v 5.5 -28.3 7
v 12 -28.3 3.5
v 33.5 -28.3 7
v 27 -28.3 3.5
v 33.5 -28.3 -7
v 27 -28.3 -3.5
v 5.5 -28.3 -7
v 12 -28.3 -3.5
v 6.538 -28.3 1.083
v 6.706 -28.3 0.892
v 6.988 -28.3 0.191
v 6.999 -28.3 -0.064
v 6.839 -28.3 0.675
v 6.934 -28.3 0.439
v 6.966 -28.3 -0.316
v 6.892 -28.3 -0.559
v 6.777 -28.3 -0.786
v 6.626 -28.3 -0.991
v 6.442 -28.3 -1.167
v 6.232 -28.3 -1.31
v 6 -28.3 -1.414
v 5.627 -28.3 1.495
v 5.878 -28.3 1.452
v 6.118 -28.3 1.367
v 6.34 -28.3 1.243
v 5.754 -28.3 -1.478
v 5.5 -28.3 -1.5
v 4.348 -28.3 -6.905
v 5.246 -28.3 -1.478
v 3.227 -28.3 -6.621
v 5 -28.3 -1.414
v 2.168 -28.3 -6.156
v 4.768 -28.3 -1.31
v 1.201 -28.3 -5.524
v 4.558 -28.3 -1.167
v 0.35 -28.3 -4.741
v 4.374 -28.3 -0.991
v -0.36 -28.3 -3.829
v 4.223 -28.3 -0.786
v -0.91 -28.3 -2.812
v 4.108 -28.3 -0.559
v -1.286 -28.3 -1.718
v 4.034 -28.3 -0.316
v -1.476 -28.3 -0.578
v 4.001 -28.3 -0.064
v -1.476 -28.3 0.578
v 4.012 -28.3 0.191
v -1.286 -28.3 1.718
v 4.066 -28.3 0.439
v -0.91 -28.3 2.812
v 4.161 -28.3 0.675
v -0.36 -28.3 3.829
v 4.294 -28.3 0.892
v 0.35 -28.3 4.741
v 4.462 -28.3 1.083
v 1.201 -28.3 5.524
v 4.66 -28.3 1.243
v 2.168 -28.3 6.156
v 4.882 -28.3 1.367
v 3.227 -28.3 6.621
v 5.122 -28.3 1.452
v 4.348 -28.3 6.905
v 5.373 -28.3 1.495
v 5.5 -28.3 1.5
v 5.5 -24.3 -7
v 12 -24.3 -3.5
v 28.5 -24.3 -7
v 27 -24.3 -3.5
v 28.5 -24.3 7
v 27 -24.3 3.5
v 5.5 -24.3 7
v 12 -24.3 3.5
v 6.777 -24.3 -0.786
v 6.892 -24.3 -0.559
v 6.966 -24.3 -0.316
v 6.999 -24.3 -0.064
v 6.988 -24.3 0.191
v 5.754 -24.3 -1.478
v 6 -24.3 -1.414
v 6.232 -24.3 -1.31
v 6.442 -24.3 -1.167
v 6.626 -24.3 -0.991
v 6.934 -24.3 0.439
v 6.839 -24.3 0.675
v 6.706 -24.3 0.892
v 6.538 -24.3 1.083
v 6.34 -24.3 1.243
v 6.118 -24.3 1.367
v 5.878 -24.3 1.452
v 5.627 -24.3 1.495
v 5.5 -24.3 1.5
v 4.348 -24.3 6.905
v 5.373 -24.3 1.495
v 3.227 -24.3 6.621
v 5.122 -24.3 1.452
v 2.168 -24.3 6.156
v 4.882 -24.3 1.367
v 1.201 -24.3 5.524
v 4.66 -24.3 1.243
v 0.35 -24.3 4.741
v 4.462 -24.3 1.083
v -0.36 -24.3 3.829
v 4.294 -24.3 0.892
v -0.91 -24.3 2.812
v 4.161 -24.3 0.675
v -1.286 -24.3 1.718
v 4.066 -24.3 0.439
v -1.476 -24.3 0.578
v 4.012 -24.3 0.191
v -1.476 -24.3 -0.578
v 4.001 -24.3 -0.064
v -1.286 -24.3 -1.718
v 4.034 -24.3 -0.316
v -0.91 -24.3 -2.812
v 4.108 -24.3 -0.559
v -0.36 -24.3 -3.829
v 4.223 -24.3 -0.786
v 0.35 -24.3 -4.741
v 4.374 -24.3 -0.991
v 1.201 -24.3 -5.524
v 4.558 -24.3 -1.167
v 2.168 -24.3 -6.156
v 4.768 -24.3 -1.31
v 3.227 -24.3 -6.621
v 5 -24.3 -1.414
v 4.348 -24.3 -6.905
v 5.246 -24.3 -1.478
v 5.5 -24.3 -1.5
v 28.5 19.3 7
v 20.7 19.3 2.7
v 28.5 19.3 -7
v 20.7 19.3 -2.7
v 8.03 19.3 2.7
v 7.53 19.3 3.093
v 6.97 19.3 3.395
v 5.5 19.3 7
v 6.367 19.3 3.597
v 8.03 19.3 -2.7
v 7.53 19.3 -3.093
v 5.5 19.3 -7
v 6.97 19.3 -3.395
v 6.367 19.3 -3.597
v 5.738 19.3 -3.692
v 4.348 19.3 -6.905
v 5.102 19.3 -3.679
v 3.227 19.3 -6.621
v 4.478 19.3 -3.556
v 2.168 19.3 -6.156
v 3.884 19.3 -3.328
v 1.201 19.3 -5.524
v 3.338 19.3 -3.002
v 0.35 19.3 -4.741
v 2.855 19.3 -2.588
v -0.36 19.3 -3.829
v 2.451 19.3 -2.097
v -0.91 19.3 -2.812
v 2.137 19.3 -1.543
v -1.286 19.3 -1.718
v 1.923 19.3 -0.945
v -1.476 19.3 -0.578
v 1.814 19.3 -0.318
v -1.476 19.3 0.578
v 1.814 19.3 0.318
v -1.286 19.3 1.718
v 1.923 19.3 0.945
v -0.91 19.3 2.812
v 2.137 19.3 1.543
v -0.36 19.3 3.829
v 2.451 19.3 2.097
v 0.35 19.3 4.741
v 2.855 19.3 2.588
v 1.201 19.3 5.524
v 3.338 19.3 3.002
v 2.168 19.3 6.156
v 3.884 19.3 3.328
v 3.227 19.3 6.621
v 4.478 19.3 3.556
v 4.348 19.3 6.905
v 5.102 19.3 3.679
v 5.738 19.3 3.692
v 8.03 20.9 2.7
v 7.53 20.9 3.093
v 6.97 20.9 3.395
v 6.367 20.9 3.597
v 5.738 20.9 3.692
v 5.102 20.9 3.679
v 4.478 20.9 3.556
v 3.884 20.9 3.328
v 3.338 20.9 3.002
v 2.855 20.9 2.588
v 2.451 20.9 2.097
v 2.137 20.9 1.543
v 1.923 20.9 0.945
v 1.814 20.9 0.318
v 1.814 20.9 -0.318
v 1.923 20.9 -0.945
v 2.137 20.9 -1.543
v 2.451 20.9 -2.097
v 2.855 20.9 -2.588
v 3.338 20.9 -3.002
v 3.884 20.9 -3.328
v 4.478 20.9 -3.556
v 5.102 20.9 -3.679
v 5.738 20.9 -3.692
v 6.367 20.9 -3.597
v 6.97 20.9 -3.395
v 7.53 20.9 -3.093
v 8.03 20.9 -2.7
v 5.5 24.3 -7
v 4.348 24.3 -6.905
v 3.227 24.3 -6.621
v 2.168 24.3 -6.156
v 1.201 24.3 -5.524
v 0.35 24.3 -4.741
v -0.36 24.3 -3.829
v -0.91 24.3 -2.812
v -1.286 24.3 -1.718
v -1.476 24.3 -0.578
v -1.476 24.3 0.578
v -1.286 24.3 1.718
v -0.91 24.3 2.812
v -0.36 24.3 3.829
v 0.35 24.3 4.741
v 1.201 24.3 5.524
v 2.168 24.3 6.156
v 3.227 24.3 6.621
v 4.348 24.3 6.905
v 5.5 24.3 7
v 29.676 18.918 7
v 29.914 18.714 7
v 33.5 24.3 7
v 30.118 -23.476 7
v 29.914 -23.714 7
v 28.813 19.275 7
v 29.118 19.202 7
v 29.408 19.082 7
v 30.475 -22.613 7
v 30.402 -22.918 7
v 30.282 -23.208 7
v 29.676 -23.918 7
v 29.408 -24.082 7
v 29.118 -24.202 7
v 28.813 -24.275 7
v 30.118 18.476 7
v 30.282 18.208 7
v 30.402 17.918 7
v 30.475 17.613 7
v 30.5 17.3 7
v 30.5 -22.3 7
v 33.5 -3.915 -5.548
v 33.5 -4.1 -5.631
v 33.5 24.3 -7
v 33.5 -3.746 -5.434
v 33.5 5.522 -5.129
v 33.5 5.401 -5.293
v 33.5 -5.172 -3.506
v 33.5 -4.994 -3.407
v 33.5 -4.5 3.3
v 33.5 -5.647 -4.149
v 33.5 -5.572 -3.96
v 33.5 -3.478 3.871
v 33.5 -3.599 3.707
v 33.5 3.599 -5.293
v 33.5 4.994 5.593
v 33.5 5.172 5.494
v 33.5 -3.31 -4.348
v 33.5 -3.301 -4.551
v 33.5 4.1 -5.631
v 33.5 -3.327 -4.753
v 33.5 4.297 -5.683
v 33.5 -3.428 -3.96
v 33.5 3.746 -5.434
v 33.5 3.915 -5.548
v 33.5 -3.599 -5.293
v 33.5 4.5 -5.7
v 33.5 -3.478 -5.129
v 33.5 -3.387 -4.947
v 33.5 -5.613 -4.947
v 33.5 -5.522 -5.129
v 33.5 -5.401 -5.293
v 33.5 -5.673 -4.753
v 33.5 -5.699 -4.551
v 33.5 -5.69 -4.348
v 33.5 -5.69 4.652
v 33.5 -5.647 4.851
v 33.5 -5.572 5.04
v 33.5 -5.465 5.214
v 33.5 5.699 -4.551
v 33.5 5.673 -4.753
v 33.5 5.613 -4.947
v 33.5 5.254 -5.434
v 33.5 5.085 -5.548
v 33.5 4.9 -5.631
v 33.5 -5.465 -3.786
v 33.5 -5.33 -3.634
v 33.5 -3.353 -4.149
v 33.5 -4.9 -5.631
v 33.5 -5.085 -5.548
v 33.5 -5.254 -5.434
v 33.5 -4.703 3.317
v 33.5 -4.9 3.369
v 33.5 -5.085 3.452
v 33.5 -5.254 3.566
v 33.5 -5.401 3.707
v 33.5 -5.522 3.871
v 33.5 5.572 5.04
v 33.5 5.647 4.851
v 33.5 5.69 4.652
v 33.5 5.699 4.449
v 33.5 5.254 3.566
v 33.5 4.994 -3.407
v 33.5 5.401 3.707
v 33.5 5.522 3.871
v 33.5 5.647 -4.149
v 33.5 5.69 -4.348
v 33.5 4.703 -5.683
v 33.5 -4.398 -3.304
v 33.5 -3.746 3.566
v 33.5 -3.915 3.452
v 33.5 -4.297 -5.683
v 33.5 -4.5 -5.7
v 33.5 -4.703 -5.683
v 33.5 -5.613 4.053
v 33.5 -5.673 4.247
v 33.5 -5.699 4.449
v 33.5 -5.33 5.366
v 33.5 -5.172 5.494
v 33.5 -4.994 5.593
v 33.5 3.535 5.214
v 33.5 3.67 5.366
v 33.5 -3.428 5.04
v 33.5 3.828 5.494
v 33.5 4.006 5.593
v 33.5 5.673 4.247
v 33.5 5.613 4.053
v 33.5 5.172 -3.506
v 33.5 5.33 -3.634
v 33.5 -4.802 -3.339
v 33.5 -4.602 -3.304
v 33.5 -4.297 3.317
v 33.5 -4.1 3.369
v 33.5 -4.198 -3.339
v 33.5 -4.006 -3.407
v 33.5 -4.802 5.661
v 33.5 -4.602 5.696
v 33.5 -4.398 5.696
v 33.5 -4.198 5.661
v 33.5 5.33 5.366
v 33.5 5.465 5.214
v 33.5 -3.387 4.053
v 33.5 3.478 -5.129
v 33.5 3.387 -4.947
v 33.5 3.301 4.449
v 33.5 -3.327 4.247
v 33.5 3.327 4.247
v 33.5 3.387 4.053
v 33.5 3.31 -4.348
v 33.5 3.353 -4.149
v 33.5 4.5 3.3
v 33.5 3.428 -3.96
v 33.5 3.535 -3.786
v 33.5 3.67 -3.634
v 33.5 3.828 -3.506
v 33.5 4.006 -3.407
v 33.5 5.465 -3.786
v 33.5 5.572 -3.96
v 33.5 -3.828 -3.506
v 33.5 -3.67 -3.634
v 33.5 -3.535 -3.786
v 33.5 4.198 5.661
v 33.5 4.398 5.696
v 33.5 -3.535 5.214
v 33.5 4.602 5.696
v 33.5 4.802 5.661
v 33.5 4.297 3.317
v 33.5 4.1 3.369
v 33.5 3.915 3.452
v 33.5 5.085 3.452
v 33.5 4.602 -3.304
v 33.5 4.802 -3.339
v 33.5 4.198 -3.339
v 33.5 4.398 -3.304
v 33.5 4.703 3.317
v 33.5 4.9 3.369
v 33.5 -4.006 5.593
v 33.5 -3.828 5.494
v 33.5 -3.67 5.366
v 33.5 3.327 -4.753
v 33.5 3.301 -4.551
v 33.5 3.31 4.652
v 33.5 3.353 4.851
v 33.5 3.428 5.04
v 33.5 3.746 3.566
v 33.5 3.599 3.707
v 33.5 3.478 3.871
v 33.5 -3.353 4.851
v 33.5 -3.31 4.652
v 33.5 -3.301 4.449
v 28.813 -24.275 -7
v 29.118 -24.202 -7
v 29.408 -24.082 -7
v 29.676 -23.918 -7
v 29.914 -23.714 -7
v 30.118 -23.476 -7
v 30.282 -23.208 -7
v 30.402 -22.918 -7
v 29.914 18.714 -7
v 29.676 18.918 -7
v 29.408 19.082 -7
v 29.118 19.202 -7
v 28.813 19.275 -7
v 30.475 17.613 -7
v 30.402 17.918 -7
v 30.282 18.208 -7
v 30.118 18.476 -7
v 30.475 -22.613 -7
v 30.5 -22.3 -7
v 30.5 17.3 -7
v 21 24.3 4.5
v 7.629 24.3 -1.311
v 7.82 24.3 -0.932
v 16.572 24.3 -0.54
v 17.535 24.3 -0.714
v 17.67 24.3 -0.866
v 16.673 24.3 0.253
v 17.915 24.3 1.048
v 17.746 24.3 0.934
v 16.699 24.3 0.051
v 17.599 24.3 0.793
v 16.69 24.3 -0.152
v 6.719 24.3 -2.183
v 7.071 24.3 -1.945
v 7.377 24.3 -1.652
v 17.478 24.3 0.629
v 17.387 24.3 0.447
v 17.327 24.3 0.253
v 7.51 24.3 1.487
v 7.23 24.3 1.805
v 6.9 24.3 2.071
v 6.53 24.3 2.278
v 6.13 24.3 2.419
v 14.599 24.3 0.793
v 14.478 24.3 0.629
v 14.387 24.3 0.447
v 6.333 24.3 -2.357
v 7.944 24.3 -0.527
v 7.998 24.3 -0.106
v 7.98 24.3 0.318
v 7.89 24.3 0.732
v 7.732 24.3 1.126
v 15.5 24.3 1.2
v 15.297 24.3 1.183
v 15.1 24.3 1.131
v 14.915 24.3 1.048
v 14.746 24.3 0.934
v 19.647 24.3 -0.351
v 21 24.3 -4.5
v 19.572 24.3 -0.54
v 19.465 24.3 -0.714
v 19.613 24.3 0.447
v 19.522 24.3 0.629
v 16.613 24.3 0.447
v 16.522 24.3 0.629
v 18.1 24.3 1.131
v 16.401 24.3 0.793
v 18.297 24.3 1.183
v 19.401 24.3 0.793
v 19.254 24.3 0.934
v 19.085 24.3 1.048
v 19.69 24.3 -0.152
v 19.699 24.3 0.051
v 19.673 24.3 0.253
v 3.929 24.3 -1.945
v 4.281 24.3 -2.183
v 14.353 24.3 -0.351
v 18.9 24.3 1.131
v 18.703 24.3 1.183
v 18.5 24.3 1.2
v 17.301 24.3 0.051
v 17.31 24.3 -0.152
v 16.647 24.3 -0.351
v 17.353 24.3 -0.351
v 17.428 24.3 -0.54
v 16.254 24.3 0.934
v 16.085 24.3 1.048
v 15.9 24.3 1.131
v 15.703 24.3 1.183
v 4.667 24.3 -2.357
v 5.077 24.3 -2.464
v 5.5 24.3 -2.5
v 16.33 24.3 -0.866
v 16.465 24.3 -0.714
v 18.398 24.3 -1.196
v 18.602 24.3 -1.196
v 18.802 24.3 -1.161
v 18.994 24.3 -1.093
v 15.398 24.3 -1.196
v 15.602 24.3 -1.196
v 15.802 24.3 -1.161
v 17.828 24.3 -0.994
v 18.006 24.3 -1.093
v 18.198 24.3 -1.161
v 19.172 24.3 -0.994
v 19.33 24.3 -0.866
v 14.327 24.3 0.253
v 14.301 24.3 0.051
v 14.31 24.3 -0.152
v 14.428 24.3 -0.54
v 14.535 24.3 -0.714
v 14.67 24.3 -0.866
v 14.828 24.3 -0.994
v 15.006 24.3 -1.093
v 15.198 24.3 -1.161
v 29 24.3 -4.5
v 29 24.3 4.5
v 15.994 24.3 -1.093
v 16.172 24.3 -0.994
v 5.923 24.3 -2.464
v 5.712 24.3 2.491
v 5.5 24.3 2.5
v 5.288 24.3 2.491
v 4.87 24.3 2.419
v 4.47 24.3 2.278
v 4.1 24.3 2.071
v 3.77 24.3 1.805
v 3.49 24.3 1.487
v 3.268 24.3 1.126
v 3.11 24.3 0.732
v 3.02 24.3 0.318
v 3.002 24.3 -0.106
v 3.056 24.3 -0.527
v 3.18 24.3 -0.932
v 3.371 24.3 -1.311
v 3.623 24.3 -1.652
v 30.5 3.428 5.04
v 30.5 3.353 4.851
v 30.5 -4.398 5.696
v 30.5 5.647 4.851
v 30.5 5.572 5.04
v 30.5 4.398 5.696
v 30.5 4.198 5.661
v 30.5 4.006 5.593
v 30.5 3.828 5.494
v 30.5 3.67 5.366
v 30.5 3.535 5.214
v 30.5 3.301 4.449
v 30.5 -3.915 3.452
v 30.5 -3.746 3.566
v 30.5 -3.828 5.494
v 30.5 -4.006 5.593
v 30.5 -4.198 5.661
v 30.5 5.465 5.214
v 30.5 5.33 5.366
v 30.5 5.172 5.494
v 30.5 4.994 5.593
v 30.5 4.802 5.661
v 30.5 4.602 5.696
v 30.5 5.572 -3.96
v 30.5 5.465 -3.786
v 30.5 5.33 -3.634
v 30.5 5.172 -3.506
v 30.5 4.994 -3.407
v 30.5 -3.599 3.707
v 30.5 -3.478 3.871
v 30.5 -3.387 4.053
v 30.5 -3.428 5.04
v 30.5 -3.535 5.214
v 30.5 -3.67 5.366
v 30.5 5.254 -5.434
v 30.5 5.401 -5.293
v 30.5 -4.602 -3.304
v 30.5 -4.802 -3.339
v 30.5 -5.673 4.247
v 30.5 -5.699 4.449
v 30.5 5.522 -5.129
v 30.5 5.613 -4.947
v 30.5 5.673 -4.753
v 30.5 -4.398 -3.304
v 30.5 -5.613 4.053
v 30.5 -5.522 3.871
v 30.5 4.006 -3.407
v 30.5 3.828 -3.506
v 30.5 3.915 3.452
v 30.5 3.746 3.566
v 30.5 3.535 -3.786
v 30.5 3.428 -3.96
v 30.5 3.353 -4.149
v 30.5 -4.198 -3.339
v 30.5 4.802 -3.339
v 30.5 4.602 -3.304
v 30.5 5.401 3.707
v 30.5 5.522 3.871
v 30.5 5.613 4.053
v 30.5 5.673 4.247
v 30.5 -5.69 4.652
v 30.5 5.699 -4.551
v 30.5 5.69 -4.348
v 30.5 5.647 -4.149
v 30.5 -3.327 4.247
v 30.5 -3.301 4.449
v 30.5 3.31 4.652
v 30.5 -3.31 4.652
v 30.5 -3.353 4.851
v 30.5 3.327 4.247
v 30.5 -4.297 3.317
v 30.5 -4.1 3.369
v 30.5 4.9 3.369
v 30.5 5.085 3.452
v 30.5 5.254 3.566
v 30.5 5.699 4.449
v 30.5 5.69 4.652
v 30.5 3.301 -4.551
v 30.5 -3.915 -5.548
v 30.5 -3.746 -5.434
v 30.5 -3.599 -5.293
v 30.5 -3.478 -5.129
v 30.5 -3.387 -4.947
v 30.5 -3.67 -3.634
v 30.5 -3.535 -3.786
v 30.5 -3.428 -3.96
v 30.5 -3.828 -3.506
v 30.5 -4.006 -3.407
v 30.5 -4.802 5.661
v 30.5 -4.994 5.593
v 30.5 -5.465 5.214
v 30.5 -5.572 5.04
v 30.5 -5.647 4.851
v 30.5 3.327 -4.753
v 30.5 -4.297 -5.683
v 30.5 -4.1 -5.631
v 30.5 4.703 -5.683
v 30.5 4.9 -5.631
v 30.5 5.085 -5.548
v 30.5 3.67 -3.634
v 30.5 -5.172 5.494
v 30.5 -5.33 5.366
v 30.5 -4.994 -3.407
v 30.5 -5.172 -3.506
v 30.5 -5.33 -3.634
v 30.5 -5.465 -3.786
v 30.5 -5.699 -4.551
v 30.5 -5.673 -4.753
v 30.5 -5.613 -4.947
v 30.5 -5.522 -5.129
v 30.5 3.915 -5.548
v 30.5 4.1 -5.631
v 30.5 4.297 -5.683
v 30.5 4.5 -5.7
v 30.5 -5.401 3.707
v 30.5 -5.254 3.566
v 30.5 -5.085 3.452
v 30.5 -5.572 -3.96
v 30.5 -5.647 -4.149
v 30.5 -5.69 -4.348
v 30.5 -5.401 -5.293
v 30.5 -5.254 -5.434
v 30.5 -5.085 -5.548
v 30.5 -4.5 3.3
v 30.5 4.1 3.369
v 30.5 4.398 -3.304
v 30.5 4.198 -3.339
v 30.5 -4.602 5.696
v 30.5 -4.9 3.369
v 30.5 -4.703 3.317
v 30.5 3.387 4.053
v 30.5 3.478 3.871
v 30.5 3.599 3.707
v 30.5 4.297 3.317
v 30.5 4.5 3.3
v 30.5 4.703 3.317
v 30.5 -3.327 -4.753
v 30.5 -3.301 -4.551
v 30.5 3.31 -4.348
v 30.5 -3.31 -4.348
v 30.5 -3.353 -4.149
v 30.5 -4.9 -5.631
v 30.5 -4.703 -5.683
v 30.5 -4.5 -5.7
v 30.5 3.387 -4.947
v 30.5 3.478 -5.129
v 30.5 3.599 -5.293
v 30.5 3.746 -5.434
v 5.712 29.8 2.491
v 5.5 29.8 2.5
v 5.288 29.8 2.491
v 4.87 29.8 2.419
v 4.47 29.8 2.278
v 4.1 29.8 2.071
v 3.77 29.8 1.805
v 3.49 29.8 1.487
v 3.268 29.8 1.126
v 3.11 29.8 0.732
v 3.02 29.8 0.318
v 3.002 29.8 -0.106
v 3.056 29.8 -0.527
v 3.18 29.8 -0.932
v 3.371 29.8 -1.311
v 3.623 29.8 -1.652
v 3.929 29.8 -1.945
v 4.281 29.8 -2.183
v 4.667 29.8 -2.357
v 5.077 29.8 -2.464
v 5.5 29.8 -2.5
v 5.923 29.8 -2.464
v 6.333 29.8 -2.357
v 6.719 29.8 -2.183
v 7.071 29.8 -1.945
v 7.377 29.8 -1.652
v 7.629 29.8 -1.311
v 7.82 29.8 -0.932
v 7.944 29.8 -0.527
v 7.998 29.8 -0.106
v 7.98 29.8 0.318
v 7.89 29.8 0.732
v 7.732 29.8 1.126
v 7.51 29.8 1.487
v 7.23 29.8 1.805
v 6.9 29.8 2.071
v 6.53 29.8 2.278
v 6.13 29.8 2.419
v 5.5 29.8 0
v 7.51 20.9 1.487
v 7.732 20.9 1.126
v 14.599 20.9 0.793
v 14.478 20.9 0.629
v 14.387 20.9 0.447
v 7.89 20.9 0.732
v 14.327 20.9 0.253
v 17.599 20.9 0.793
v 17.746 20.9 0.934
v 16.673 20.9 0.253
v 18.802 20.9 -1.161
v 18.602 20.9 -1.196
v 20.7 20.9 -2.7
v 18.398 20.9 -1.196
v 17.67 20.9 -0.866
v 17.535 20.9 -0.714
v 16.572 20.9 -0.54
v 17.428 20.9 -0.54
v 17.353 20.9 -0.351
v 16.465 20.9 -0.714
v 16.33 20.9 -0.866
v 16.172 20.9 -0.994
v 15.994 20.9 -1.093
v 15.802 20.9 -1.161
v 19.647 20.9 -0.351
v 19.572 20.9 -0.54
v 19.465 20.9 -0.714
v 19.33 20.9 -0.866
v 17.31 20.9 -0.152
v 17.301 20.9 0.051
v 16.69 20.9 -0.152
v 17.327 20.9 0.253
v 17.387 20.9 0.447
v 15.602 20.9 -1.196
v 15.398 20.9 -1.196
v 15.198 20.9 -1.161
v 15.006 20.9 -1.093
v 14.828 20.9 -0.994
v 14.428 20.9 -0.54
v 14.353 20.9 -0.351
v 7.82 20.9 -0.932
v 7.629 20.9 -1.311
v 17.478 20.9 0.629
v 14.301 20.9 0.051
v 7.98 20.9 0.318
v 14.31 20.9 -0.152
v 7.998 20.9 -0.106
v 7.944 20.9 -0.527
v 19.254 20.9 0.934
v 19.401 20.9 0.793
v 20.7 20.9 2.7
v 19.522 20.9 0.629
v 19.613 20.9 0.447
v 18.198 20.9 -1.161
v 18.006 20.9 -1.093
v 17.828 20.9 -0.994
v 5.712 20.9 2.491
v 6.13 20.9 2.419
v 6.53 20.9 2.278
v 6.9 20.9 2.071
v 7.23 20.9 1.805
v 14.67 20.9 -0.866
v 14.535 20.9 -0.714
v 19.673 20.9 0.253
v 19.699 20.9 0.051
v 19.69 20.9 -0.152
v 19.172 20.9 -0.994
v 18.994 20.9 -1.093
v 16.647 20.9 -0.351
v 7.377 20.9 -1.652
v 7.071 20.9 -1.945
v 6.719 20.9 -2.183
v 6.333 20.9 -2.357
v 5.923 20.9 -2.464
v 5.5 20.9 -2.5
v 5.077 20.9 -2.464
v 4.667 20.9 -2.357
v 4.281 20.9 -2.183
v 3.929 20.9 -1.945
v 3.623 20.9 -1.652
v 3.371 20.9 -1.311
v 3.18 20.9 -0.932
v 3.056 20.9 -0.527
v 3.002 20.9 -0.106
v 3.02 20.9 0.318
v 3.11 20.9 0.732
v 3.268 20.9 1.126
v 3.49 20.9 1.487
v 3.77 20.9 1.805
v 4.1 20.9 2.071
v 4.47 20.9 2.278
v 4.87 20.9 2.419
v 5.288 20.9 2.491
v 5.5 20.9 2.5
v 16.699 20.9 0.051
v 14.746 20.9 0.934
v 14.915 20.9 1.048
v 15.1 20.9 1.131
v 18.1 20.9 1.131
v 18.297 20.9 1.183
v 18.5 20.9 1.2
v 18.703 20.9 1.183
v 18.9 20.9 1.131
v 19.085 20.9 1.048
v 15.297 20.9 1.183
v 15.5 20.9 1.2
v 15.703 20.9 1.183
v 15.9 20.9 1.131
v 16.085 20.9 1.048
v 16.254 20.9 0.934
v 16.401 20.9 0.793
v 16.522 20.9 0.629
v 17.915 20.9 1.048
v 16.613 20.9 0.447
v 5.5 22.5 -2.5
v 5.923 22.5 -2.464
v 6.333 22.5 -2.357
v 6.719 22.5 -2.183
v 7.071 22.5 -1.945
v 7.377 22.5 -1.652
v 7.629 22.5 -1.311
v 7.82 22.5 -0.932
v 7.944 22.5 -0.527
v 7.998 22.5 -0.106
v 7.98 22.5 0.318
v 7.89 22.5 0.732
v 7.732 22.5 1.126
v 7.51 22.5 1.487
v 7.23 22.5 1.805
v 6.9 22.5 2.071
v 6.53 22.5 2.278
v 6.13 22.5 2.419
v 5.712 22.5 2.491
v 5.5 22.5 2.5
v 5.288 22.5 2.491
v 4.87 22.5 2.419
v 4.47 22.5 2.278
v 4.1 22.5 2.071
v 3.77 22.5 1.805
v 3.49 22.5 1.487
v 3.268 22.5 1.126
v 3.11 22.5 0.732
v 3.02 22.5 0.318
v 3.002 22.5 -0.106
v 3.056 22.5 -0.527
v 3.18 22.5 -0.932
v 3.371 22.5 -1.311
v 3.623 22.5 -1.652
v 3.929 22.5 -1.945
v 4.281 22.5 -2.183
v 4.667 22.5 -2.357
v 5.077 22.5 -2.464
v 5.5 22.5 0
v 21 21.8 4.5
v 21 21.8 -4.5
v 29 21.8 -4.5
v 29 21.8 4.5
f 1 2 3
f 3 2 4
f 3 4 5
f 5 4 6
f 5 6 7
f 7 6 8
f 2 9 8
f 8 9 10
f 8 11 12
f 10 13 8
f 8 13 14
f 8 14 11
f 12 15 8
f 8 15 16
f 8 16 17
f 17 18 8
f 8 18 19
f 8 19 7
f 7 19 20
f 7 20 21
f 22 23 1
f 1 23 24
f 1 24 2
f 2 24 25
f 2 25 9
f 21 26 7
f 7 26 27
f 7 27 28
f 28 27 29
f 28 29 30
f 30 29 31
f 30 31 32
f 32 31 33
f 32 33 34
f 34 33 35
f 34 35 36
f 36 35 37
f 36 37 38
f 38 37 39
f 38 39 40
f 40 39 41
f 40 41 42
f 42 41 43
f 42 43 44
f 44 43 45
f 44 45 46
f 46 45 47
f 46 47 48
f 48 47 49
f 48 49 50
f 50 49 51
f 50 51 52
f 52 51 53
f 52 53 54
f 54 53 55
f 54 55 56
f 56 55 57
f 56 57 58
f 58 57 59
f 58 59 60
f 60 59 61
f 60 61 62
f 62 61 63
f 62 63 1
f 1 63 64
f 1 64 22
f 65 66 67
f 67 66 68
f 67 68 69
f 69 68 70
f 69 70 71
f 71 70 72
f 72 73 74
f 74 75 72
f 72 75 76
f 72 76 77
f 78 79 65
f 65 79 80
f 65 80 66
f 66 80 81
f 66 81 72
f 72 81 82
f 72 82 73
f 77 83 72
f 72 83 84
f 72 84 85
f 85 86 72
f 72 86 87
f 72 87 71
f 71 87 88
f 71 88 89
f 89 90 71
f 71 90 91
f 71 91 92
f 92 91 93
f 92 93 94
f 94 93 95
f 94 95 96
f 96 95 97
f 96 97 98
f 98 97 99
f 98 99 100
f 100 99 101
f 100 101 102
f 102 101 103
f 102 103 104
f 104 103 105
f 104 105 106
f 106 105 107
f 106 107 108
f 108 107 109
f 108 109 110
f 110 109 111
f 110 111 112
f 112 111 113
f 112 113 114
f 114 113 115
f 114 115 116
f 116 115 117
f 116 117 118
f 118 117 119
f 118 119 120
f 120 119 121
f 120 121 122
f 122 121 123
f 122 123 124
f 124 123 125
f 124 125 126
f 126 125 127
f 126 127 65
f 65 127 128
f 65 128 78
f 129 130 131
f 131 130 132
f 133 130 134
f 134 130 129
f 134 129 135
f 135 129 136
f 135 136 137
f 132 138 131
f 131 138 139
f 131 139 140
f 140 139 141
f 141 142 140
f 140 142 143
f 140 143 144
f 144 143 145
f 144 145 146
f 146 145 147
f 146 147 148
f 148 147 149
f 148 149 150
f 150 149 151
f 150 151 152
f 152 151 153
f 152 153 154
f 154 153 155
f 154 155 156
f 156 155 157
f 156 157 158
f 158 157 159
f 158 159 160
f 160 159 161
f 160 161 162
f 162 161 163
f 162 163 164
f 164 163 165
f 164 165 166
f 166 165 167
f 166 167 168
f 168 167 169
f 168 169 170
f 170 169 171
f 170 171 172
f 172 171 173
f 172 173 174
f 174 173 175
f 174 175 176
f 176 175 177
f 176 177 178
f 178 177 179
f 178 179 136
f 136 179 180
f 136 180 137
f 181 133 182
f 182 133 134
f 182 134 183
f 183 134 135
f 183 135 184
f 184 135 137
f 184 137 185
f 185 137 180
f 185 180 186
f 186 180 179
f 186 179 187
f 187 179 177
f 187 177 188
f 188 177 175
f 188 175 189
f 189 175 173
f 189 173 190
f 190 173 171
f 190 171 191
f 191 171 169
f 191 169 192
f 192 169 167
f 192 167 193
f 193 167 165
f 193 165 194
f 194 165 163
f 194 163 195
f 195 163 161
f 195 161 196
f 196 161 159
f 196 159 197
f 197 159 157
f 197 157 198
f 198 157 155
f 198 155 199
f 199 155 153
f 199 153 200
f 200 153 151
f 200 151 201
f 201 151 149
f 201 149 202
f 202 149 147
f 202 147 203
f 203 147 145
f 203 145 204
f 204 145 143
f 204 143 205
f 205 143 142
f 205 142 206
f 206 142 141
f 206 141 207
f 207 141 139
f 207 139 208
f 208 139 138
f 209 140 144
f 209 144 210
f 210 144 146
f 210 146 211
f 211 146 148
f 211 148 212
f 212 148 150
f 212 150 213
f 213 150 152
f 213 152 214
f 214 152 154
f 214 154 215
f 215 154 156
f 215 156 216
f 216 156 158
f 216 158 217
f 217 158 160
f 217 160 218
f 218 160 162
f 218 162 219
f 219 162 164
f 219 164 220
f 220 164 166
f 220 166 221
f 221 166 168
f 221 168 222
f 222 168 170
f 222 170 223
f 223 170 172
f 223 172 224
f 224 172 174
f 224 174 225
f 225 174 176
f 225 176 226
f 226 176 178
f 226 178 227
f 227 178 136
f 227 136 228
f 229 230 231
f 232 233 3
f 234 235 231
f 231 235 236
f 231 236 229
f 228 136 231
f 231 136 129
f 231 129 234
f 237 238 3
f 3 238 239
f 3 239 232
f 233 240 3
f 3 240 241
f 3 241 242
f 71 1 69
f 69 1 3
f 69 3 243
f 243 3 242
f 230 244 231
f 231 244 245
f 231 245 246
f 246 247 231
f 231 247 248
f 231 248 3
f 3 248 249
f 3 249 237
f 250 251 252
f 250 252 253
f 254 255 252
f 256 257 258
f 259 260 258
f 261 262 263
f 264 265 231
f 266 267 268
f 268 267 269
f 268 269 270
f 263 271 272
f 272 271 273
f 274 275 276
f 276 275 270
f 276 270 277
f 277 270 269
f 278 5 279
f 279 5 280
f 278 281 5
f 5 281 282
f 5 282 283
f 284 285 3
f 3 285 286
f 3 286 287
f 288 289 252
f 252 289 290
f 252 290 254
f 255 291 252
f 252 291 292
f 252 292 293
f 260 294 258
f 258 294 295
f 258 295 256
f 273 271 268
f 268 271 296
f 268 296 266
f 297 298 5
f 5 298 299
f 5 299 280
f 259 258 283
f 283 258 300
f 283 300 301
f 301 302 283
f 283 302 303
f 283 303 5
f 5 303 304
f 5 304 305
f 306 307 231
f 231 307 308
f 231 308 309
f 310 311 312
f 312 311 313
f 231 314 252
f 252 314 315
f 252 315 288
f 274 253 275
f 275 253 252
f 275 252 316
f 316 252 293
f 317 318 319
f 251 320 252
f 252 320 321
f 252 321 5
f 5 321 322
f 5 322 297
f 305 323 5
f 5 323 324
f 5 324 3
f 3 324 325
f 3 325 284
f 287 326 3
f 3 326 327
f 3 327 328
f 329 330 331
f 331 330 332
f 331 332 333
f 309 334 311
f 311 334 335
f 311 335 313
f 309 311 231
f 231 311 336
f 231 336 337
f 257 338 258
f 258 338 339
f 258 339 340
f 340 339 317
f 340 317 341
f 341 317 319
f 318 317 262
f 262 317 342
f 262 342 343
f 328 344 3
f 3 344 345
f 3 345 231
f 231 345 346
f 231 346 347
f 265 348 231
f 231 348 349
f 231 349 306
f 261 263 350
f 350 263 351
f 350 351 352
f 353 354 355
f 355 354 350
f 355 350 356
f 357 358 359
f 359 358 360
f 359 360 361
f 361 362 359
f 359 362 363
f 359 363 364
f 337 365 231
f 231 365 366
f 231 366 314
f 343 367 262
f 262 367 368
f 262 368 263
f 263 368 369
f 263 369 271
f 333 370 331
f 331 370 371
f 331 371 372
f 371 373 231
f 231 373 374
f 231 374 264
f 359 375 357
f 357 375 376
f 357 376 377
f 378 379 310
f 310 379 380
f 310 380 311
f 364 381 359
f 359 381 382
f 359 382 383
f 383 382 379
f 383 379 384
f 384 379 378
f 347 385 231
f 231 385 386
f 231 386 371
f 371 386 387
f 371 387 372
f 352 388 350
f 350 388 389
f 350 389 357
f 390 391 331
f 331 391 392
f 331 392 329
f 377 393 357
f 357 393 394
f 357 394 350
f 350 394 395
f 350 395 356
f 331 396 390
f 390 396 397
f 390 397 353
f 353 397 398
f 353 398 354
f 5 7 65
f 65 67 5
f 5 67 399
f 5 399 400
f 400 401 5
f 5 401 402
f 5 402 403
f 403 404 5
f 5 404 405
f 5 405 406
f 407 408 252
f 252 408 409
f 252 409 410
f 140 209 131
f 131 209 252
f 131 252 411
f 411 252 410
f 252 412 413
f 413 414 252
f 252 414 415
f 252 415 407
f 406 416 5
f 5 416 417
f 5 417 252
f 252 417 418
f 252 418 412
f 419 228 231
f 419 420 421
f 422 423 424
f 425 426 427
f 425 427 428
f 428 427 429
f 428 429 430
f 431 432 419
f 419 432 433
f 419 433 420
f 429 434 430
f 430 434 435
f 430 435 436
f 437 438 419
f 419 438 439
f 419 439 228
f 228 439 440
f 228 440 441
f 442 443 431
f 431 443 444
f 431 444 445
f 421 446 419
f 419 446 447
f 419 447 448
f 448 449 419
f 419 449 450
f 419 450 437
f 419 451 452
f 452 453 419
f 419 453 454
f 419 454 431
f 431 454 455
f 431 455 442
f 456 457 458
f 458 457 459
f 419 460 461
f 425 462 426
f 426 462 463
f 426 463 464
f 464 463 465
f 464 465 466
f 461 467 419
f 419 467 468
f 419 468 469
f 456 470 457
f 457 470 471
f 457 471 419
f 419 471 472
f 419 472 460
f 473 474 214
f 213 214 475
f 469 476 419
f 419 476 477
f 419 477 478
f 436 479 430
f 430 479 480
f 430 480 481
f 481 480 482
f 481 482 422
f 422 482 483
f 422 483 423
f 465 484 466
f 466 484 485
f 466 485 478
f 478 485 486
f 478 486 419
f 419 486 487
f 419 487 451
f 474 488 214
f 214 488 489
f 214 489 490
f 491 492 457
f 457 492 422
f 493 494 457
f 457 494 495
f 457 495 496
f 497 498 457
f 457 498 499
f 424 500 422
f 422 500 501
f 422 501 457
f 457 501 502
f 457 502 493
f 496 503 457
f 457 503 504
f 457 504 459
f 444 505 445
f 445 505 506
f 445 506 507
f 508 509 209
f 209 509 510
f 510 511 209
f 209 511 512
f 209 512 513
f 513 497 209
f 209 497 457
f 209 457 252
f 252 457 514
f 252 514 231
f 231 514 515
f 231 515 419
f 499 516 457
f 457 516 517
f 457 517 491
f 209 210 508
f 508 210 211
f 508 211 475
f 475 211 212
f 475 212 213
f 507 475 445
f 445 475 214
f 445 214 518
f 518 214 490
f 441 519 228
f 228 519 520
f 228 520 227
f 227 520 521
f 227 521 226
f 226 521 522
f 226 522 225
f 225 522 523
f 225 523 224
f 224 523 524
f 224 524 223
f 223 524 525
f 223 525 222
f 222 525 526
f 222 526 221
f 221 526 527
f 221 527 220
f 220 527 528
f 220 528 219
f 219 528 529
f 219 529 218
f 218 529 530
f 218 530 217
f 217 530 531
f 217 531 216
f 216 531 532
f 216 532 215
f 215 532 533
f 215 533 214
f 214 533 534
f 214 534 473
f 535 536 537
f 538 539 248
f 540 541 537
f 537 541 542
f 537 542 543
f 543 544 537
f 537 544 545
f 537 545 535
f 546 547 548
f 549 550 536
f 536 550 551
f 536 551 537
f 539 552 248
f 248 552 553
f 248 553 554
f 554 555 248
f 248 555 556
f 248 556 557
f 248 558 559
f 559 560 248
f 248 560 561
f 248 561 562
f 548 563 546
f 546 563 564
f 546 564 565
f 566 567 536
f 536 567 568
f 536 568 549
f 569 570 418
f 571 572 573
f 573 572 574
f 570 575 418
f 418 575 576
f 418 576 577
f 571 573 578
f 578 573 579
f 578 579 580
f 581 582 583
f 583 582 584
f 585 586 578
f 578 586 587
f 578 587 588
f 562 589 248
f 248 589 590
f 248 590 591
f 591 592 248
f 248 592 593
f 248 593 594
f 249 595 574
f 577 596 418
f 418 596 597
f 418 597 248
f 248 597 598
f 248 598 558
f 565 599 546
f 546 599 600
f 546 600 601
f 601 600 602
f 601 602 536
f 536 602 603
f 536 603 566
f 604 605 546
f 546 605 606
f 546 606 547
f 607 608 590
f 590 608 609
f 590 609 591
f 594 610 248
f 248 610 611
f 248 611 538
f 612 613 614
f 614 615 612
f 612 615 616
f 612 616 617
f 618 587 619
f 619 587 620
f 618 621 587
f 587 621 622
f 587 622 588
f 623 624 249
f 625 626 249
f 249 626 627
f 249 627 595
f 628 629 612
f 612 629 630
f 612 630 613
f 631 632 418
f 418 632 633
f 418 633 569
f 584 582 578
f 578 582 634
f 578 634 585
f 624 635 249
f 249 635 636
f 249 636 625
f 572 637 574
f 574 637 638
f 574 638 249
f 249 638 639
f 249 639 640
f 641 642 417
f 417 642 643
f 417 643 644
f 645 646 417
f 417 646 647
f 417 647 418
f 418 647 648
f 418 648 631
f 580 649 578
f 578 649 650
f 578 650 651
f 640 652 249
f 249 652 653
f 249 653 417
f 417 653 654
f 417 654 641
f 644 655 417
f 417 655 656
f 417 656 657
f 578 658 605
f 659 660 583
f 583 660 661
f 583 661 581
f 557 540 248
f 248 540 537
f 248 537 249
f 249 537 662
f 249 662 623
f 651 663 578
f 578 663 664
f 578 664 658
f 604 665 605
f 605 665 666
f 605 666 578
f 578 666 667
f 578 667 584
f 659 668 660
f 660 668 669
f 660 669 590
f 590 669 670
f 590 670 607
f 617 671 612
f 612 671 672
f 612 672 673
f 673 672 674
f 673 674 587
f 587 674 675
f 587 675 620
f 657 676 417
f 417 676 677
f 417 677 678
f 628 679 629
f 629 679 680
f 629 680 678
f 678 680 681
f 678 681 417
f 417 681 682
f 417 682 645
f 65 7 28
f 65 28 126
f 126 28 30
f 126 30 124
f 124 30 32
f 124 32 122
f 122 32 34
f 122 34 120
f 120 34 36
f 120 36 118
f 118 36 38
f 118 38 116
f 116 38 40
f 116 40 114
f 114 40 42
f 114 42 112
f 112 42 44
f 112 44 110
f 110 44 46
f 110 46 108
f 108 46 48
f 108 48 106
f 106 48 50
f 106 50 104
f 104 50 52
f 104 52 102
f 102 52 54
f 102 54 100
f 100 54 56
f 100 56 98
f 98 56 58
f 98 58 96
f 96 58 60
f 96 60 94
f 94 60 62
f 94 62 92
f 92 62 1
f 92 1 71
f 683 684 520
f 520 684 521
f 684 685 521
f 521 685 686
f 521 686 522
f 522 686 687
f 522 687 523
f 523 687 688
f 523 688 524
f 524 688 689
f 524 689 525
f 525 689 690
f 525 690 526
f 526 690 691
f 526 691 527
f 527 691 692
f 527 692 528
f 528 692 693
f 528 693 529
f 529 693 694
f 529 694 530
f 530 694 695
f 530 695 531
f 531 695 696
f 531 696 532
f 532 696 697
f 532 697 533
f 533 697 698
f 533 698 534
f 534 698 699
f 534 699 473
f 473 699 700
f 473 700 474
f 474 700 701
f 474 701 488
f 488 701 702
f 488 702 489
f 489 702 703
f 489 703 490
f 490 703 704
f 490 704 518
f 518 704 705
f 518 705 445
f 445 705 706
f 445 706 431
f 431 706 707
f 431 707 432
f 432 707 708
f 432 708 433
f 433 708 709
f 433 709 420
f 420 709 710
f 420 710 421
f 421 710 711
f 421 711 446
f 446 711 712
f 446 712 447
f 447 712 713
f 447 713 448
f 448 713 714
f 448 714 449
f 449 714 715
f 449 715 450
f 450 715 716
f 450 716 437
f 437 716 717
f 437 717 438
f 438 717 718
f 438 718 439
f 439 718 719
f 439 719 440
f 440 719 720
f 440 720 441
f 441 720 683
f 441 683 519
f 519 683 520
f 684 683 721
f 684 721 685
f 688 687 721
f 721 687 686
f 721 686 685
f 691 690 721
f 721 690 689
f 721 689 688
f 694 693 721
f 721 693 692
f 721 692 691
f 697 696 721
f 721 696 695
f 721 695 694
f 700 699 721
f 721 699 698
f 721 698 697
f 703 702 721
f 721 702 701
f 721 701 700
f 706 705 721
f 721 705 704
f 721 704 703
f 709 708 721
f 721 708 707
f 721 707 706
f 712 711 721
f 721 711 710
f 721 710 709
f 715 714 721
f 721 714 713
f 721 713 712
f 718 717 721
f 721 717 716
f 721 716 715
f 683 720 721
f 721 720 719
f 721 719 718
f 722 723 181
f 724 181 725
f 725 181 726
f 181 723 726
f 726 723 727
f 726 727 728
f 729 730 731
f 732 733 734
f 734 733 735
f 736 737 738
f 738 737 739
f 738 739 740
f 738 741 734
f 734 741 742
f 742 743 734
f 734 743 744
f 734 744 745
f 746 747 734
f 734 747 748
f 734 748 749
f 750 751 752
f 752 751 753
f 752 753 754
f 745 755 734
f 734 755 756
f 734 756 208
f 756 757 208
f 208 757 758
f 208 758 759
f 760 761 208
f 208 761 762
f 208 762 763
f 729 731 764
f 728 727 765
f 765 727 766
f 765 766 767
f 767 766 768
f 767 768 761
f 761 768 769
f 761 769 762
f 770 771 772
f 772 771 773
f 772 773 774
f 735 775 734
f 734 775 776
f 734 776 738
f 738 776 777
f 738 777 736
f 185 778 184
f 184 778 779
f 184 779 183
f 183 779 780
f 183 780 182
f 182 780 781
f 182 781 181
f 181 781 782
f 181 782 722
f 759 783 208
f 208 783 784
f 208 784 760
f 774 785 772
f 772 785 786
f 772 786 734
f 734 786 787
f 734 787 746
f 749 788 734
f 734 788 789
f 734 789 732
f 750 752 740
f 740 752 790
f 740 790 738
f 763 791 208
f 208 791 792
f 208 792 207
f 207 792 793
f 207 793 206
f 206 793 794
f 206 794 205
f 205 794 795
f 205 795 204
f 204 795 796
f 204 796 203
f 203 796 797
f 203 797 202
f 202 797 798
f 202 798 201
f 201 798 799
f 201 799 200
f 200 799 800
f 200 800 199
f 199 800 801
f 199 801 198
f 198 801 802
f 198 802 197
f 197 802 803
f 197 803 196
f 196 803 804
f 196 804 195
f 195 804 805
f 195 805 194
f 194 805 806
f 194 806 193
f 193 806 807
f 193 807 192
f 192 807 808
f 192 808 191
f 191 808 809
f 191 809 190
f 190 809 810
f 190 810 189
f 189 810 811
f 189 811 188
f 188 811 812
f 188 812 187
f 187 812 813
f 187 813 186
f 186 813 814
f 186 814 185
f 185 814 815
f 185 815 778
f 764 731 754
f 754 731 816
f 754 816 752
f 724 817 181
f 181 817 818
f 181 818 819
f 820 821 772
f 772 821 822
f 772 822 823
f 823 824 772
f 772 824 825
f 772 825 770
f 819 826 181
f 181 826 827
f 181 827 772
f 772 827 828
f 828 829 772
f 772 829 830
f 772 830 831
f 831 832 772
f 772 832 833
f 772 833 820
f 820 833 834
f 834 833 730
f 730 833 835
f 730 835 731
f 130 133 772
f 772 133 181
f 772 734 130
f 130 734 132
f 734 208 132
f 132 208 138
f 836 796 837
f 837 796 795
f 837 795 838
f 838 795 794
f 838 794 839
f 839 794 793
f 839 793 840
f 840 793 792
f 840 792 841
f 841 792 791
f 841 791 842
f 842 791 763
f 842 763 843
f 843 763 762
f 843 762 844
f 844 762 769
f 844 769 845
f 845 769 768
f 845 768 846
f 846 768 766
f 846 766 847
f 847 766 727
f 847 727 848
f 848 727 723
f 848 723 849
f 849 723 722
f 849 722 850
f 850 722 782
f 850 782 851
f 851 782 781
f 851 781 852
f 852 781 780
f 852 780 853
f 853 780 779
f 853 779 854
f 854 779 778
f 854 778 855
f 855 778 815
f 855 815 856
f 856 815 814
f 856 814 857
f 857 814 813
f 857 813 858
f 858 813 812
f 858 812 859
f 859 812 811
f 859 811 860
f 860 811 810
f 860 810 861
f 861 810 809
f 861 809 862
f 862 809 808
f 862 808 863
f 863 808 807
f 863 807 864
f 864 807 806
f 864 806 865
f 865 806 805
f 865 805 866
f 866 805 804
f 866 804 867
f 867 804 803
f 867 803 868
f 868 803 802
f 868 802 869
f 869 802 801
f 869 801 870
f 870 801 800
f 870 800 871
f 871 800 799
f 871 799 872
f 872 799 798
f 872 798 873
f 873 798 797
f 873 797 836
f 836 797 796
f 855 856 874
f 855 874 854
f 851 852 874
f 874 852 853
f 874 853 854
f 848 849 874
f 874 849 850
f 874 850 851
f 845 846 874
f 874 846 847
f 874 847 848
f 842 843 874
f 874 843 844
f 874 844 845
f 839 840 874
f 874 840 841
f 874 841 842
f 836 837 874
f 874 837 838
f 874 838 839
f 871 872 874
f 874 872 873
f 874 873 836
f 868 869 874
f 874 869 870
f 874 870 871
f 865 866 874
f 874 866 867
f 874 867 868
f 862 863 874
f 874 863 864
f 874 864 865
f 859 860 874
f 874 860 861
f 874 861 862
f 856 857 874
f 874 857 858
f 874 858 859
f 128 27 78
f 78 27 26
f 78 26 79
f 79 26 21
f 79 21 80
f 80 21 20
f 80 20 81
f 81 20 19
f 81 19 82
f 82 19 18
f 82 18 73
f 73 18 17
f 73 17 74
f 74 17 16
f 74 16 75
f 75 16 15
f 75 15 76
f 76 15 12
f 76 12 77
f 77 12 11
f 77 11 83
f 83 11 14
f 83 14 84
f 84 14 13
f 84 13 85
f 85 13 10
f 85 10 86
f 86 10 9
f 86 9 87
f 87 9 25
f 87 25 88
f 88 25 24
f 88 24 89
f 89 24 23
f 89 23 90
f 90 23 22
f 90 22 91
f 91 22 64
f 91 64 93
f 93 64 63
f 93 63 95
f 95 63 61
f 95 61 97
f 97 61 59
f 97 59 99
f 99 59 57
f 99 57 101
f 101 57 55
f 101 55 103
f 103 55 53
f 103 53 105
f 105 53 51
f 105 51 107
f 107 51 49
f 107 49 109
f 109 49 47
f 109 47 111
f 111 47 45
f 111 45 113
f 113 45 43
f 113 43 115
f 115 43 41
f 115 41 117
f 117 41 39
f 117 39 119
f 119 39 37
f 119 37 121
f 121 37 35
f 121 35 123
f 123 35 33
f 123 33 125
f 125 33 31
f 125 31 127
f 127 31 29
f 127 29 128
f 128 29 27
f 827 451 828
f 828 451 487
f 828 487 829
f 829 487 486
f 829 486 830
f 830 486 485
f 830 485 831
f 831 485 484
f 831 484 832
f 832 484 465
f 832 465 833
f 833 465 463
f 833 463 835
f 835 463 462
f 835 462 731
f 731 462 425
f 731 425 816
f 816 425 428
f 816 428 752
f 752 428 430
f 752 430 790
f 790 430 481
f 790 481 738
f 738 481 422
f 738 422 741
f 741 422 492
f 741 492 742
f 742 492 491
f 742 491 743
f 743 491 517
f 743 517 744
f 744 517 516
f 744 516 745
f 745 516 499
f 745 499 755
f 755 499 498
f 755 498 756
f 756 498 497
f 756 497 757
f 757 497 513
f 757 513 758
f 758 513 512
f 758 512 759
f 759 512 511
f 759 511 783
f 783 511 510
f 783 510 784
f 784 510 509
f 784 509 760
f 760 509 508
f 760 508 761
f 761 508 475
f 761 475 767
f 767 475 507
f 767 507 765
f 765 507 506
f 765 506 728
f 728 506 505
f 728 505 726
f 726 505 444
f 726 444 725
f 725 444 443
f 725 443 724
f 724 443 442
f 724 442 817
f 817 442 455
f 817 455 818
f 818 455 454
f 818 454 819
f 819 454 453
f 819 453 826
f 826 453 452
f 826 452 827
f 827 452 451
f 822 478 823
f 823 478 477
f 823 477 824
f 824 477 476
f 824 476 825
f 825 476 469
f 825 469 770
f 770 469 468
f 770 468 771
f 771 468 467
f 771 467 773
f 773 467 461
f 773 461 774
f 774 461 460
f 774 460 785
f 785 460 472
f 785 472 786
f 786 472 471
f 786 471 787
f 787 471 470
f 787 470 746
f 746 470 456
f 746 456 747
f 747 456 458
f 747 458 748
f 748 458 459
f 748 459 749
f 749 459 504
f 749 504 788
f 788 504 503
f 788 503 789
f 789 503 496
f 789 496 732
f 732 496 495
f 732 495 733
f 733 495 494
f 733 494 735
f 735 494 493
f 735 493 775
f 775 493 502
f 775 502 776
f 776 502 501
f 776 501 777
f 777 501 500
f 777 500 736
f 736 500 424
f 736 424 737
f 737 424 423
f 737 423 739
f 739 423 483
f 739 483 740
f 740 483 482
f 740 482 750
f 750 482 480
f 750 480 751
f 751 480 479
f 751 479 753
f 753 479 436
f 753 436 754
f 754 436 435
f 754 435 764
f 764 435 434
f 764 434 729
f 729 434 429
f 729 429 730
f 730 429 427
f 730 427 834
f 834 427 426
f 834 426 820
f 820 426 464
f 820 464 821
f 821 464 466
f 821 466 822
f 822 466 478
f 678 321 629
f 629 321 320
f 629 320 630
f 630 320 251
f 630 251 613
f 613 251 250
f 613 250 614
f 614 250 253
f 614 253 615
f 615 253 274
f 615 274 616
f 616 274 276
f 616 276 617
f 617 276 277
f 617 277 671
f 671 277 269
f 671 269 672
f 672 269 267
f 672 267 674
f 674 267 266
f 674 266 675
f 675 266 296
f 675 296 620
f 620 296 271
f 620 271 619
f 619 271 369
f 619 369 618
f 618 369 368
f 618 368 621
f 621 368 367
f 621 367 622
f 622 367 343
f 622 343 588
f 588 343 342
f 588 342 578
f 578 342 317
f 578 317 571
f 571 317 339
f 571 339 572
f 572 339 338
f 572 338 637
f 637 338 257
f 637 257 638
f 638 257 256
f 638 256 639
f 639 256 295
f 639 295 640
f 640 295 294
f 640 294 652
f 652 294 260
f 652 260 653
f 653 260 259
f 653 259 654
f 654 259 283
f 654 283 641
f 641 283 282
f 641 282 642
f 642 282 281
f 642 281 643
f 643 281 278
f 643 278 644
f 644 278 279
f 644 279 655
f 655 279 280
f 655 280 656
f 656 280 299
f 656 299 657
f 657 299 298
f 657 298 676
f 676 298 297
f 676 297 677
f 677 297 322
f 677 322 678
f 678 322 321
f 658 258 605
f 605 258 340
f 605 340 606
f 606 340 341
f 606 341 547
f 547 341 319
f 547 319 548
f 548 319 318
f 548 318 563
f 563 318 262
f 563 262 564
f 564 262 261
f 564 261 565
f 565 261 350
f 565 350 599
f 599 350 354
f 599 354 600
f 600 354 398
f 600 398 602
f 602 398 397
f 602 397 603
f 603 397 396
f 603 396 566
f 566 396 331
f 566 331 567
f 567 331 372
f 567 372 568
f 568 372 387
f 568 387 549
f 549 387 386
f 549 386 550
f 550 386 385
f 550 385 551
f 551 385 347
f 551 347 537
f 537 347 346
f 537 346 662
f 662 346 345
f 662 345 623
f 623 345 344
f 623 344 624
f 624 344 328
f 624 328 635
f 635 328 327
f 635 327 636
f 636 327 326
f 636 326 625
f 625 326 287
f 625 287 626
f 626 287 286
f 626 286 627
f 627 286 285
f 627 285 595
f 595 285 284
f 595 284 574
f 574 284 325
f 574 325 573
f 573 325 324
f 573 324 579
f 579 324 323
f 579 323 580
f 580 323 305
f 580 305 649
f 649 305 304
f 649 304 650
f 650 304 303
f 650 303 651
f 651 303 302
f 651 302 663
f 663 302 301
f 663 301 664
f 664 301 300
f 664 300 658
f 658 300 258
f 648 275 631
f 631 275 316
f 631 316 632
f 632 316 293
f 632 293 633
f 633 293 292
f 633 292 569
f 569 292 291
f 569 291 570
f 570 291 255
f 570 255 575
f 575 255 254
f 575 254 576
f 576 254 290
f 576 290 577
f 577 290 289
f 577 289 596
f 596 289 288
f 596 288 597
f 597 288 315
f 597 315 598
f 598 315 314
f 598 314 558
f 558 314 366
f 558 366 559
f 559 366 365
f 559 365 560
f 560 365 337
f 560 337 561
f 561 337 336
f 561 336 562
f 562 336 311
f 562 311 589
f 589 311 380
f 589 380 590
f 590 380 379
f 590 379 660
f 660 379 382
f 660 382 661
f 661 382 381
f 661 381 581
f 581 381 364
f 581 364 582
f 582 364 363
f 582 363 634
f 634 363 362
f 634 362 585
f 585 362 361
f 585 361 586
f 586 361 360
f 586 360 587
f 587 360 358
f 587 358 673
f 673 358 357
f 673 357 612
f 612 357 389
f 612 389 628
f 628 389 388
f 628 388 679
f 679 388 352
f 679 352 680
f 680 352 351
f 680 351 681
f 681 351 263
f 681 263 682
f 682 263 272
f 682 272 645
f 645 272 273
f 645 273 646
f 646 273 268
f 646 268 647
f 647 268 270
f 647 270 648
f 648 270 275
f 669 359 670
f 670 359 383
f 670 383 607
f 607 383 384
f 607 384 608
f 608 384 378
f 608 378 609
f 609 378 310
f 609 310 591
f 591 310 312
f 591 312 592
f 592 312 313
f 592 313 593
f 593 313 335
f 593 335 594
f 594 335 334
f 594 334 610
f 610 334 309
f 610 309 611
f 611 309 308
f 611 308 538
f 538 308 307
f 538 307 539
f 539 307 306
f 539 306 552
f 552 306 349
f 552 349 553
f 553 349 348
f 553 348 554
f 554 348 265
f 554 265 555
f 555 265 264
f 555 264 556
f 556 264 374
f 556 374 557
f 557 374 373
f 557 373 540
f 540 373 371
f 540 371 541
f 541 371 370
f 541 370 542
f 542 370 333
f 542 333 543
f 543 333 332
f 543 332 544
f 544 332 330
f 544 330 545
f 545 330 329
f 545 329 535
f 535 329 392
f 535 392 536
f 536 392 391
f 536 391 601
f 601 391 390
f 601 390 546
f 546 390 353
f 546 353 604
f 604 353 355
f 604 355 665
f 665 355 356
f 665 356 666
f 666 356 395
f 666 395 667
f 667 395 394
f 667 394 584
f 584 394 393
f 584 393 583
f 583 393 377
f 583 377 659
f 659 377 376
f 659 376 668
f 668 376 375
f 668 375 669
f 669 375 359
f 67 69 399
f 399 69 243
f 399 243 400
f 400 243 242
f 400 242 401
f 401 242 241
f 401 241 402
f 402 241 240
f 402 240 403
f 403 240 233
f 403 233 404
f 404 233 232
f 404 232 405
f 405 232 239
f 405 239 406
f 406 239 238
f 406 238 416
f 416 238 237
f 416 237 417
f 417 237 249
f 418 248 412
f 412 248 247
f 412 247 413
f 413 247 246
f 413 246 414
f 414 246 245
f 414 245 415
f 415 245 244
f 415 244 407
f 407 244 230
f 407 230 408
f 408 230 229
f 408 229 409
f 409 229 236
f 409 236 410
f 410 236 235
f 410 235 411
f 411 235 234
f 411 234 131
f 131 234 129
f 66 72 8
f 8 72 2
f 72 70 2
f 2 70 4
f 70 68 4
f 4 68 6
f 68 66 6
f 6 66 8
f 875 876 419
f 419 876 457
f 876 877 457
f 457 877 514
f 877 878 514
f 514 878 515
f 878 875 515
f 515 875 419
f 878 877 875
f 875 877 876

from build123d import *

# Parameters (mm, degrees)
BOSS_EXTRUDE1_DEPTH      = 5
BOSS_EXTRUDE2_DEPTH      = 4
SKETCH3_W                = 3
SKETCH3_H                = 52.6
BOSS_EXTRUDE3_DEPTH      = 7
SKETCH4_R                = 2.5
BOSS_EXTRUDE4_DEPTH      = 5.5
SKETCH5_R                = 3.7
CUT_EXTRUDE2_DEPTH       = 1.6
CUT_EXTRUDE4_DEPTH       = 1.6
SKETCH7_R                = 2.5
CUT_EXTRUDE6_DEPTH       = 1.6
SKETCH8_R                = 1.5
CUT_EXTRUDE8_DEPTH       = 4
M2_CLEARANCE_HOLE1_D     = 2.4
M2_CLEARANCE_HOLE1_DEPTH = 5
M2_CLEARANCE_HOLE1_TIP   = 0.721032743
M2_CLEARANCE_HOLE2_D     = 2.4
M2_CLEARANCE_HOLE2_DEPTH = 5
M2_CLEARANCE_HOLE2_TIP   = 0.721032743
M2_CLEARANCE_HOLE3_D     = 2.4
M2_CLEARANCE_HOLE3_DEPTH = 35
M2_CLEARANCE_HOLE4_D     = 2.4
M2_CLEARANCE_HOLE4_DEPTH = 35
M2_CLEARANCE_HOLE5_D     = 2.4
M2_CLEARANCE_HOLE5_DEPTH = 35
M2_CLEARANCE_HOLE6_D     = 2.4
M2_CLEARANCE_HOLE6_DEPTH = 35
FILLET1_R                = 2
SKETCH21_W               = 15
SKETCH21_H               = 7
CUT_EXTRUDE10_DEPTH      = 4
SKETCH22_W               = 8
SKETCH22_H               = 9
CUT_EXTRUDE11_DEPTH      = 2.5


with BuildPart() as part:
    # Sketch1 → Boss-Extrude1 (new body)
    with BuildSketch(Plane(origin=(0, 19.3, 0), x_dir=(1, 0, 0), z_dir=(0, 1, 0))):
        with BuildLine():
            Line((5.5, -7), (33.5, -7))
            Line((33.5, -7), (33.5, 7))
            Line((33.5, 7), (5.5, 7))
            ThreePointArc((5.5, 7), (-1.5, 0), (5.5, -7))
        make_face()
    extrude(amount=BOSS_EXTRUDE1_DEPTH)



with BuildPart() as body_2:
    # Sketch2 → Boss-Extrude2 (new body)
    with BuildSketch(Plane(origin=(0, -28.3, 0), x_dir=(1, 0, 0), z_dir=(0, 1, 0))):
        with BuildLine():
            Line((5.5, -7), (33.5, -7))
            Line((33.5, -7), (33.5, 7))
            Line((33.5, 7), (5.5, 7))
            ThreePointArc((5.5, 7), (-1.5, 0), (5.5, -7))
        make_face()
    extrude(amount=BOSS_EXTRUDE2_DEPTH)


with BuildPart() as part_1:
    add(part.part)

    add(body_2.part)  # Boss-Extrude3 merges body 2
    # Sketch3 → Boss-Extrude3 (add, symmetric)
    with BuildSketch(Plane.XY):
        with Locations((32, -2)):
            Rectangle(SKETCH3_W, SKETCH3_H)
    extrude(amount=BOSS_EXTRUDE3_DEPTH, both=True)

    # Sketch4 → Boss-Extrude4 (add)
    with BuildSketch(Plane(origin=(0, 24.3, 0), x_dir=(1, 0, 0), z_dir=(0, 1, 0))):
        with Locations(Location((5.5, 0, 0), (0, 0, 270))):
            Circle(SKETCH4_R)
    extrude(amount=BOSS_EXTRUDE4_DEPTH)

    # Sketch5 → Cut-Extrude2 (cut)
    with BuildSketch(Plane(origin=(0, 19.3, 0), x_dir=(1, 0, 0), z_dir=(0, 1, 0))):
        with Locations(Location((5.5, 0, 0), (0, 0, 270))):
            Circle(SKETCH5_R)
    extrude(amount=CUT_EXTRUDE2_DEPTH, mode=Mode.SUBTRACT)

    # Sketch6 → Cut-Extrude4 (cut)
    with BuildSketch(Plane(origin=(0, 19.3, 0), x_dir=(1, 0, 0), z_dir=(0, 1, 0))):
        with BuildLine():
            Line((5.5, -2.7), (20.7, -2.7))
            Line((20.7, -2.7), (20.7, 2.7))
            Line((20.7, 2.7), (5.5, 2.7))
            ThreePointArc((5.5, 2.7), (2.8, 0), (5.5, -2.7))
        make_face()
    extrude(amount=CUT_EXTRUDE4_DEPTH, mode=Mode.SUBTRACT)

    # Sketch7 → Cut-Extrude6 (cut)
    with BuildSketch(Plane(origin=(0, 20.9, 0), x_dir=(1, 0, 0), z_dir=(0, 1, 0))):
        with Locations(Location((5.5, 0, 0), (0, 0, 270))):
            Circle(SKETCH7_R)
    extrude(amount=CUT_EXTRUDE6_DEPTH, mode=Mode.SUBTRACT)

    # Sketch8 → Cut-Extrude8 (cut)
    with BuildSketch(Plane(origin=(0, -28.3, 0), x_dir=(1, 0, 0), z_dir=(0, 1, 0))):
        with Locations(Location((5.5, 0, 0), (0, 0, 270))):
            Circle(SKETCH8_R)
    extrude(amount=CUT_EXTRUDE8_DEPTH, mode=Mode.SUBTRACT)

    # M2 Clearance Hole1
    with Locations(Plane(origin=(0, 24.3, 0), x_dir=(1, 0, 0), z_dir=(0, 1, 0))):
        with Locations((15.5, 0)):
            Hole(M2_CLEARANCE_HOLE1_D / 2, depth=M2_CLEARANCE_HOLE1_DEPTH)
            with Locations((0, 0, -(M2_CLEARANCE_HOLE1_DEPTH + M2_CLEARANCE_HOLE1_TIP / 2))):  # 118° drill point
                Cone(0, M2_CLEARANCE_HOLE1_D / 2, M2_CLEARANCE_HOLE1_TIP, mode=Mode.SUBTRACT)

    # M2 Clearance Hole2
    with Locations(Plane(origin=(0, 24.3, 0), x_dir=(1, 0, 0), z_dir=(0, 1, 0))):
        with Locations((18.5, 0)):
            Hole(M2_CLEARANCE_HOLE2_D / 2, depth=M2_CLEARANCE_HOLE2_DEPTH)
            with Locations((0, 0, -(M2_CLEARANCE_HOLE2_DEPTH + M2_CLEARANCE_HOLE2_TIP / 2))):  # 118° drill point
                Cone(0, M2_CLEARANCE_HOLE2_D / 2, M2_CLEARANCE_HOLE2_TIP, mode=Mode.SUBTRACT)

    # M2 Clearance Hole3
    with Locations(Plane(origin=(33.5, 0, 0), x_dir=(0, 0, -1), z_dir=(1, 0, 0))):
        with Locations((4.5, -4.5)):
            Hole(M2_CLEARANCE_HOLE3_D / 2, depth=M2_CLEARANCE_HOLE3_DEPTH)

    # M2 Clearance Hole4
    with Locations(Plane(origin=(33.5, 0, 0), x_dir=(0, 0, -1), z_dir=(1, 0, 0))):
        with Locations((-4.5, -4.5)):
            Hole(M2_CLEARANCE_HOLE4_D / 2, depth=M2_CLEARANCE_HOLE4_DEPTH)

    # M2 Clearance Hole5
    with Locations(Plane(origin=(33.5, 0, 0), x_dir=(0, 0, -1), z_dir=(1, 0, 0))):
        with Locations((4.5, 4.5)):
            Hole(M2_CLEARANCE_HOLE5_D / 2, depth=M2_CLEARANCE_HOLE5_DEPTH)

    # M2 Clearance Hole6
    with Locations(Plane(origin=(33.5, 0, 0), x_dir=(0, 0, -1), z_dir=(1, 0, 0))):
        with Locations((-4.5, 4.5)):
            Hole(M2_CLEARANCE_HOLE6_D / 2, depth=M2_CLEARANCE_HOLE6_DEPTH)

    # Fillet1
    fillet1_edges = [part_1.edges().sort_by_distance(p)[0] for p in [
        (30.5, 19.3, 0),
        (30.5, -24.3, 0),
    ]]
    fillet(fillet1_edges, radius=FILLET1_R)

    # Sketch21 → Cut-Extrude10 (cut)
    with BuildSketch(Plane(origin=(0, -28.3, 0), x_dir=(1, 0, 0), z_dir=(0, 1, 0))):
        with Locations((19.5, 0)):
            Rectangle(SKETCH21_W, SKETCH21_H)
    extrude(amount=CUT_EXTRUDE10_DEPTH, mode=Mode.SUBTRACT)

    # Sketch22 → Cut-Extrude11 (cut)
    with BuildSketch(Plane(origin=(0, 24.3, 0), x_dir=(1, 0, 0), z_dir=(0, 1, 0))):
        with Locations((25, 0)):
            Rectangle(SKETCH22_W, SKETCH22_H)
    extrude(amount=-CUT_EXTRUDE11_DEPTH, mode=Mode.SUBTRACT)


solid = part_1.part
